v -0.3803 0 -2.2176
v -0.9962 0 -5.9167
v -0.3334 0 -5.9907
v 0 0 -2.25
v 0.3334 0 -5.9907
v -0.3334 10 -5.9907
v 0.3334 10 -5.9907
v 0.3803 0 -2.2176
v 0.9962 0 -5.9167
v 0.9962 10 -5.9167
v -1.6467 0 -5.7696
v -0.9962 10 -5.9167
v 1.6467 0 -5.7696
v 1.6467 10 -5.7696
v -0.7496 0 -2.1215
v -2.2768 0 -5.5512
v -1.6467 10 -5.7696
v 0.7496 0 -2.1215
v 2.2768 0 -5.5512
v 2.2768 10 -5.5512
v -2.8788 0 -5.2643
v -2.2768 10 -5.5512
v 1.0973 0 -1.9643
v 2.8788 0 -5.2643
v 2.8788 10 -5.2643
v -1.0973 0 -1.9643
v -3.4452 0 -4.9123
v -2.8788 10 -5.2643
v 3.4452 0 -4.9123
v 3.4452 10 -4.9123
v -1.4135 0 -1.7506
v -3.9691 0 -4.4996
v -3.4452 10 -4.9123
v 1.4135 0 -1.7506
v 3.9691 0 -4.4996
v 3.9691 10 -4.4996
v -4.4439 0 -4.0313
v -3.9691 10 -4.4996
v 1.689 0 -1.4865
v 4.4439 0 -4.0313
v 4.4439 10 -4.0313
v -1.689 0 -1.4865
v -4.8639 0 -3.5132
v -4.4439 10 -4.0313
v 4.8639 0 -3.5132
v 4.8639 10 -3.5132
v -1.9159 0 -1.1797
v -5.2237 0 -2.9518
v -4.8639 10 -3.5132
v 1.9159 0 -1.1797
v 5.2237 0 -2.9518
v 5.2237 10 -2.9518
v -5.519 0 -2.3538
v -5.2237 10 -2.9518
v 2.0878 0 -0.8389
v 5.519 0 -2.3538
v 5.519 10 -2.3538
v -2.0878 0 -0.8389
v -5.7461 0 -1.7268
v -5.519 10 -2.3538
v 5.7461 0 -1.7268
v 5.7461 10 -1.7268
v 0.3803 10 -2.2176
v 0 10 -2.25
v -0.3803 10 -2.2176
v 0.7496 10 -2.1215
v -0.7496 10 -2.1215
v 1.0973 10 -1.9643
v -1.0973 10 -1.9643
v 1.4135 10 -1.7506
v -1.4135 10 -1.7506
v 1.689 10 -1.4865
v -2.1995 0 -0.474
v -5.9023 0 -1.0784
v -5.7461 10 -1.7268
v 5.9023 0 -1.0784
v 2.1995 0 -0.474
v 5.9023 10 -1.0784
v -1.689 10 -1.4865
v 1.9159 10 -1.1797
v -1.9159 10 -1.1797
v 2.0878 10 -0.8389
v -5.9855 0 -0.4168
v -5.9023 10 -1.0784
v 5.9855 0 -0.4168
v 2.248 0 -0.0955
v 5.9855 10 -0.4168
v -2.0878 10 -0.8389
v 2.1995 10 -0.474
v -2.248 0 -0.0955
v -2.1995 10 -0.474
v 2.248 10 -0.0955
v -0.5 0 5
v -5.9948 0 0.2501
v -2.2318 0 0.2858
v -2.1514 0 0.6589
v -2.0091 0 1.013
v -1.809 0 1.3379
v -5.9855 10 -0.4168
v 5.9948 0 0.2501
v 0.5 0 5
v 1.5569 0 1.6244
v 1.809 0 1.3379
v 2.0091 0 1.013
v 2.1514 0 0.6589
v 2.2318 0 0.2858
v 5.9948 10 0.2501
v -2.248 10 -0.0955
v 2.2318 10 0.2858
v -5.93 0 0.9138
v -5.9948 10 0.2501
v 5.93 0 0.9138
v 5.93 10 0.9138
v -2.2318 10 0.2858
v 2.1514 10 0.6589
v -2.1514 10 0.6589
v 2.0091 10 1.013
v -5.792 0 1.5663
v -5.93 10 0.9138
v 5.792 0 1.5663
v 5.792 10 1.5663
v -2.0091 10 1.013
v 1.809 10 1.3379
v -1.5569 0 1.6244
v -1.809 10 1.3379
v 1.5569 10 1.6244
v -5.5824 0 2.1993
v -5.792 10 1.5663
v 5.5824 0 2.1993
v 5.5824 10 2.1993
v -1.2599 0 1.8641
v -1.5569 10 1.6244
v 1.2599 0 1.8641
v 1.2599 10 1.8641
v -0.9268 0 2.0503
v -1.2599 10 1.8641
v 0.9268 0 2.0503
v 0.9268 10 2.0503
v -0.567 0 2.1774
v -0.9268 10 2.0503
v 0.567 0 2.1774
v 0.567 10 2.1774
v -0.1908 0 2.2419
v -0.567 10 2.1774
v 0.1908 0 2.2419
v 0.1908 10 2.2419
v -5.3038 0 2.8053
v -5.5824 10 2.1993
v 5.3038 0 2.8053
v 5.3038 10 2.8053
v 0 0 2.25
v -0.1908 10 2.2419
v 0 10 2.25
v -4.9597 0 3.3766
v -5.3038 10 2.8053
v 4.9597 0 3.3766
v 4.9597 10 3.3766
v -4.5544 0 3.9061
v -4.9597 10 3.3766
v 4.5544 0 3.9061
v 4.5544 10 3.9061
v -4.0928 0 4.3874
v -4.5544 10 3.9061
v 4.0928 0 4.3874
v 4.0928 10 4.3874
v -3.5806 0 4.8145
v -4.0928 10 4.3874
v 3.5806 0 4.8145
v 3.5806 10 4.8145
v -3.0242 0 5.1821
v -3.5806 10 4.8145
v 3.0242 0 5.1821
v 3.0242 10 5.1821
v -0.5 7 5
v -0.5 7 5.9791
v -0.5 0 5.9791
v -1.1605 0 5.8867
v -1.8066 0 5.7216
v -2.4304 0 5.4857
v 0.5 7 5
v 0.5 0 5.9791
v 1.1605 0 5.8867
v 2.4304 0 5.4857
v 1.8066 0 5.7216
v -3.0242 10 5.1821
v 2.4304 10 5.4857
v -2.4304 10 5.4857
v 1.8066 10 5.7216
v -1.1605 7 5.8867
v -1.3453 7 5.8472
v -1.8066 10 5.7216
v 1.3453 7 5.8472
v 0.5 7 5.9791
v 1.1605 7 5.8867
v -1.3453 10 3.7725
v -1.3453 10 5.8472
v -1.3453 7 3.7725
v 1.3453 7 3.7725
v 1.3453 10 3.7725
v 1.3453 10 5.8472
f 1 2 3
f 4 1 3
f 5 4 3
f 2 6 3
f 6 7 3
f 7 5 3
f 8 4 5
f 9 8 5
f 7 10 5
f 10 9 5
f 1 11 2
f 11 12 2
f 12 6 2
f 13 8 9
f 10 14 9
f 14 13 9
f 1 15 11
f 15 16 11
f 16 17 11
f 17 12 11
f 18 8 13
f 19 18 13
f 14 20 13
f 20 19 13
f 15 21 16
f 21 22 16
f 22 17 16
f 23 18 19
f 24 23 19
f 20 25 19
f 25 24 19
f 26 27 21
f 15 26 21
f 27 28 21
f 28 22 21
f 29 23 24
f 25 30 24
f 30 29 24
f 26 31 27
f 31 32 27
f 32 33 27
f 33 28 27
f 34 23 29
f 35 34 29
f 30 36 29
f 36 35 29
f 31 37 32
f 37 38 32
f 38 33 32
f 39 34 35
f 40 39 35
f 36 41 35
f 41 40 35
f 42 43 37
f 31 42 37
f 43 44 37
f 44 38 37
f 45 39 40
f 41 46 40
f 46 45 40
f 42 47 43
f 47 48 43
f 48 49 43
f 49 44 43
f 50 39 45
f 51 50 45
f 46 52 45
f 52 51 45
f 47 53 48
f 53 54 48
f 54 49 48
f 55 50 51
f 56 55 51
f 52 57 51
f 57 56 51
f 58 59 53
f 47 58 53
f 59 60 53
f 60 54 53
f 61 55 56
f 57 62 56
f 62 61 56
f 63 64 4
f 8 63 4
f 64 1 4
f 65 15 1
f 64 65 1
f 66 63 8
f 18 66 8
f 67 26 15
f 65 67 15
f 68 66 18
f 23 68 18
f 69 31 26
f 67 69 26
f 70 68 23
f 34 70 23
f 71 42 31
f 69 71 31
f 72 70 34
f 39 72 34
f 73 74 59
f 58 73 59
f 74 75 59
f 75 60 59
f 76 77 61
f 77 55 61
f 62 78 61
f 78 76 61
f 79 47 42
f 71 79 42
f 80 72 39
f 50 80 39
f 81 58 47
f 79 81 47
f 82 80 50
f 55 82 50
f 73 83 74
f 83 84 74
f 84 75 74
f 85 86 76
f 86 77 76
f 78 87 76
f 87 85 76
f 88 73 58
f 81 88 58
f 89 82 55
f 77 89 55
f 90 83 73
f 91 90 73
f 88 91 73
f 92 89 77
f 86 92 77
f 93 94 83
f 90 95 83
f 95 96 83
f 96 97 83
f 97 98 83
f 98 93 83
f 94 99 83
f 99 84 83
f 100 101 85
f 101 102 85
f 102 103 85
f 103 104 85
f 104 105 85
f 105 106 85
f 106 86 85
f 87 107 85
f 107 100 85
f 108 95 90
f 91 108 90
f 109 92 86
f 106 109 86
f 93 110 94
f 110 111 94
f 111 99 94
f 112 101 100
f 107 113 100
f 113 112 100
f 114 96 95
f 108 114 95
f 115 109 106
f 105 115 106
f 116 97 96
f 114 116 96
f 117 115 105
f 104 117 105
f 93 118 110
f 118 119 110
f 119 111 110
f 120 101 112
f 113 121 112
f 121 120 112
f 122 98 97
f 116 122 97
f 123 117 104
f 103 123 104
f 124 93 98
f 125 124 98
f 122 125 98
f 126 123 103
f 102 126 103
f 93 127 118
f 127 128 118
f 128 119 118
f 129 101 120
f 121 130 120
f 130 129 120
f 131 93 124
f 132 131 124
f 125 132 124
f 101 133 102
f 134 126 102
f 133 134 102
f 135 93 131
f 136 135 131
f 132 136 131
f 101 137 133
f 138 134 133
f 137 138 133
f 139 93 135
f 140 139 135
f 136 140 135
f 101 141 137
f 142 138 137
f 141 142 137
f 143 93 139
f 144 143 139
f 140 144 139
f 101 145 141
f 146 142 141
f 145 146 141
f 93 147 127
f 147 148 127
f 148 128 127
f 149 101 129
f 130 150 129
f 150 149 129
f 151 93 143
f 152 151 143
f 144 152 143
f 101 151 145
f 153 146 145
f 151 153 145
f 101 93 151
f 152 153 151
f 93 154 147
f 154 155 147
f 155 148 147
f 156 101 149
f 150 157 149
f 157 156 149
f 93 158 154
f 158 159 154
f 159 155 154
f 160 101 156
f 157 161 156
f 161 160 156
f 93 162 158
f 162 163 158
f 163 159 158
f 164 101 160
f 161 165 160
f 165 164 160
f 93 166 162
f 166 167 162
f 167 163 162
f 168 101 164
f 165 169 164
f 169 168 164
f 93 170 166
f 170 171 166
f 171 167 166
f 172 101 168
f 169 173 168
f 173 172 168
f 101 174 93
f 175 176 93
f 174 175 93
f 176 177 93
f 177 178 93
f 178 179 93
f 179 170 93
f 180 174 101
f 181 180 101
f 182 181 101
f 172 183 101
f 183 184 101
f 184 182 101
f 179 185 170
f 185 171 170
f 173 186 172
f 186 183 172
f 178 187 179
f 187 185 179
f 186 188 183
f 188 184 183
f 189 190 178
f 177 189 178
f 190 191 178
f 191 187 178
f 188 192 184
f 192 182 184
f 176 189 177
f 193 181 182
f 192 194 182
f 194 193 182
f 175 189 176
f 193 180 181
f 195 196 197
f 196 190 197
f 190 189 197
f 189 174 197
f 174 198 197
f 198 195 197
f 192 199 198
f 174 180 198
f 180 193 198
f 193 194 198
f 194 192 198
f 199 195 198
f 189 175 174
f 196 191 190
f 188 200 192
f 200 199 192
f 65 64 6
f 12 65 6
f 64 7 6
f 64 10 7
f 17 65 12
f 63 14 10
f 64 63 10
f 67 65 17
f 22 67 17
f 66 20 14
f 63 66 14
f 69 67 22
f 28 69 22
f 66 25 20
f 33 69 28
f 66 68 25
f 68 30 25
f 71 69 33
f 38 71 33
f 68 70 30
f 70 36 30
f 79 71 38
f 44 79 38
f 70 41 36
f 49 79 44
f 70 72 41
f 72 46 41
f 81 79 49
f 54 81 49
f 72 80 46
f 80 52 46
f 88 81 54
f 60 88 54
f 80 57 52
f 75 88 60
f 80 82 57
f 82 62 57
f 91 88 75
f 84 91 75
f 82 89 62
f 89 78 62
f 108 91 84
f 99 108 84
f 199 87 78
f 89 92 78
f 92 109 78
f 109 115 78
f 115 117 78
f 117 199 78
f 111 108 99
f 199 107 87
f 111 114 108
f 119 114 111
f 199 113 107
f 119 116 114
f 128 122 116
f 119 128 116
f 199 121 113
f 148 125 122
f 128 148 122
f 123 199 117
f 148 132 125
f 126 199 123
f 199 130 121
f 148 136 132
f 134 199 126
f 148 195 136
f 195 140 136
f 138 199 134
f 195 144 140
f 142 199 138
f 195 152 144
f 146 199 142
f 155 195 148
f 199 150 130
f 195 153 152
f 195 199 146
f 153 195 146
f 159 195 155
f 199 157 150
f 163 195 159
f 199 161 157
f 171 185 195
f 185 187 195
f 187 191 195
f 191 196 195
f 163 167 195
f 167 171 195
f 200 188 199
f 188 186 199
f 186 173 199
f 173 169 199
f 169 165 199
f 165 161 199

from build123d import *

# Parameters (mm, degrees)
ESQUISSE1_R             = 6
ESQUISSE1_R_2           = 2.25
BOSS_EXTRU_1_DEPTH      = 10
ESQUISSE2_W             = 1
ESQUISSE2_H             = 2
ENL_V_MAT_EXTRU_1_DEPTH = 20
ESQUISSE3_W             = 2.690646438
ESQUISSE3_H             = 2.455091602
ENL_V_MAT_EXTRU_2_DEPTH = 3


with BuildPart() as part:
    # Esquisse1 → Boss.-Extru.1 (new body)
    with BuildSketch(Plane(origin=(0, 0, 0), x_dir=(1, 0, 0), z_dir=(0, 1, 0))):
        with Locations(Location((0, 0, 0), (0, 0, 270))):
            Circle(ESQUISSE1_R)
        with Locations(Location((0, 0, 0), (0, 0, 270))):
            Circle(ESQUISSE1_R_2, mode=Mode.SUBTRACT)
    extrude(amount=BOSS_EXTRU_1_DEPTH)

    # Esquisse2 → Enlèv. mat.-Extru.1 (cut)
    with BuildSketch(Plane(origin=(0, 10, 0), x_dir=(1, 0, 0), z_dir=(0, 1, 0))):
        with Locations((0, -6)):
            Rectangle(ESQUISSE2_W, ESQUISSE2_H)
    extrude(amount=-ENL_V_MAT_EXTRU_1_DEPTH, mode=Mode.SUBTRACT)

    # Esquisse3 → Enlèv. mat.-Extru.2 (cut)
    with BuildSketch(Plane(origin=(0, 10, 0), x_dir=(1, 0, 0), z_dir=(0, 1, 0))):
        with Locations((0, -5)):
            Rectangle(ESQUISSE3_W, ESQUISSE3_H)
    extrude(amount=-ENL_V_MAT_EXTRU_2_DEPTH, mode=Mode.SUBTRACT)


solid = part.part
